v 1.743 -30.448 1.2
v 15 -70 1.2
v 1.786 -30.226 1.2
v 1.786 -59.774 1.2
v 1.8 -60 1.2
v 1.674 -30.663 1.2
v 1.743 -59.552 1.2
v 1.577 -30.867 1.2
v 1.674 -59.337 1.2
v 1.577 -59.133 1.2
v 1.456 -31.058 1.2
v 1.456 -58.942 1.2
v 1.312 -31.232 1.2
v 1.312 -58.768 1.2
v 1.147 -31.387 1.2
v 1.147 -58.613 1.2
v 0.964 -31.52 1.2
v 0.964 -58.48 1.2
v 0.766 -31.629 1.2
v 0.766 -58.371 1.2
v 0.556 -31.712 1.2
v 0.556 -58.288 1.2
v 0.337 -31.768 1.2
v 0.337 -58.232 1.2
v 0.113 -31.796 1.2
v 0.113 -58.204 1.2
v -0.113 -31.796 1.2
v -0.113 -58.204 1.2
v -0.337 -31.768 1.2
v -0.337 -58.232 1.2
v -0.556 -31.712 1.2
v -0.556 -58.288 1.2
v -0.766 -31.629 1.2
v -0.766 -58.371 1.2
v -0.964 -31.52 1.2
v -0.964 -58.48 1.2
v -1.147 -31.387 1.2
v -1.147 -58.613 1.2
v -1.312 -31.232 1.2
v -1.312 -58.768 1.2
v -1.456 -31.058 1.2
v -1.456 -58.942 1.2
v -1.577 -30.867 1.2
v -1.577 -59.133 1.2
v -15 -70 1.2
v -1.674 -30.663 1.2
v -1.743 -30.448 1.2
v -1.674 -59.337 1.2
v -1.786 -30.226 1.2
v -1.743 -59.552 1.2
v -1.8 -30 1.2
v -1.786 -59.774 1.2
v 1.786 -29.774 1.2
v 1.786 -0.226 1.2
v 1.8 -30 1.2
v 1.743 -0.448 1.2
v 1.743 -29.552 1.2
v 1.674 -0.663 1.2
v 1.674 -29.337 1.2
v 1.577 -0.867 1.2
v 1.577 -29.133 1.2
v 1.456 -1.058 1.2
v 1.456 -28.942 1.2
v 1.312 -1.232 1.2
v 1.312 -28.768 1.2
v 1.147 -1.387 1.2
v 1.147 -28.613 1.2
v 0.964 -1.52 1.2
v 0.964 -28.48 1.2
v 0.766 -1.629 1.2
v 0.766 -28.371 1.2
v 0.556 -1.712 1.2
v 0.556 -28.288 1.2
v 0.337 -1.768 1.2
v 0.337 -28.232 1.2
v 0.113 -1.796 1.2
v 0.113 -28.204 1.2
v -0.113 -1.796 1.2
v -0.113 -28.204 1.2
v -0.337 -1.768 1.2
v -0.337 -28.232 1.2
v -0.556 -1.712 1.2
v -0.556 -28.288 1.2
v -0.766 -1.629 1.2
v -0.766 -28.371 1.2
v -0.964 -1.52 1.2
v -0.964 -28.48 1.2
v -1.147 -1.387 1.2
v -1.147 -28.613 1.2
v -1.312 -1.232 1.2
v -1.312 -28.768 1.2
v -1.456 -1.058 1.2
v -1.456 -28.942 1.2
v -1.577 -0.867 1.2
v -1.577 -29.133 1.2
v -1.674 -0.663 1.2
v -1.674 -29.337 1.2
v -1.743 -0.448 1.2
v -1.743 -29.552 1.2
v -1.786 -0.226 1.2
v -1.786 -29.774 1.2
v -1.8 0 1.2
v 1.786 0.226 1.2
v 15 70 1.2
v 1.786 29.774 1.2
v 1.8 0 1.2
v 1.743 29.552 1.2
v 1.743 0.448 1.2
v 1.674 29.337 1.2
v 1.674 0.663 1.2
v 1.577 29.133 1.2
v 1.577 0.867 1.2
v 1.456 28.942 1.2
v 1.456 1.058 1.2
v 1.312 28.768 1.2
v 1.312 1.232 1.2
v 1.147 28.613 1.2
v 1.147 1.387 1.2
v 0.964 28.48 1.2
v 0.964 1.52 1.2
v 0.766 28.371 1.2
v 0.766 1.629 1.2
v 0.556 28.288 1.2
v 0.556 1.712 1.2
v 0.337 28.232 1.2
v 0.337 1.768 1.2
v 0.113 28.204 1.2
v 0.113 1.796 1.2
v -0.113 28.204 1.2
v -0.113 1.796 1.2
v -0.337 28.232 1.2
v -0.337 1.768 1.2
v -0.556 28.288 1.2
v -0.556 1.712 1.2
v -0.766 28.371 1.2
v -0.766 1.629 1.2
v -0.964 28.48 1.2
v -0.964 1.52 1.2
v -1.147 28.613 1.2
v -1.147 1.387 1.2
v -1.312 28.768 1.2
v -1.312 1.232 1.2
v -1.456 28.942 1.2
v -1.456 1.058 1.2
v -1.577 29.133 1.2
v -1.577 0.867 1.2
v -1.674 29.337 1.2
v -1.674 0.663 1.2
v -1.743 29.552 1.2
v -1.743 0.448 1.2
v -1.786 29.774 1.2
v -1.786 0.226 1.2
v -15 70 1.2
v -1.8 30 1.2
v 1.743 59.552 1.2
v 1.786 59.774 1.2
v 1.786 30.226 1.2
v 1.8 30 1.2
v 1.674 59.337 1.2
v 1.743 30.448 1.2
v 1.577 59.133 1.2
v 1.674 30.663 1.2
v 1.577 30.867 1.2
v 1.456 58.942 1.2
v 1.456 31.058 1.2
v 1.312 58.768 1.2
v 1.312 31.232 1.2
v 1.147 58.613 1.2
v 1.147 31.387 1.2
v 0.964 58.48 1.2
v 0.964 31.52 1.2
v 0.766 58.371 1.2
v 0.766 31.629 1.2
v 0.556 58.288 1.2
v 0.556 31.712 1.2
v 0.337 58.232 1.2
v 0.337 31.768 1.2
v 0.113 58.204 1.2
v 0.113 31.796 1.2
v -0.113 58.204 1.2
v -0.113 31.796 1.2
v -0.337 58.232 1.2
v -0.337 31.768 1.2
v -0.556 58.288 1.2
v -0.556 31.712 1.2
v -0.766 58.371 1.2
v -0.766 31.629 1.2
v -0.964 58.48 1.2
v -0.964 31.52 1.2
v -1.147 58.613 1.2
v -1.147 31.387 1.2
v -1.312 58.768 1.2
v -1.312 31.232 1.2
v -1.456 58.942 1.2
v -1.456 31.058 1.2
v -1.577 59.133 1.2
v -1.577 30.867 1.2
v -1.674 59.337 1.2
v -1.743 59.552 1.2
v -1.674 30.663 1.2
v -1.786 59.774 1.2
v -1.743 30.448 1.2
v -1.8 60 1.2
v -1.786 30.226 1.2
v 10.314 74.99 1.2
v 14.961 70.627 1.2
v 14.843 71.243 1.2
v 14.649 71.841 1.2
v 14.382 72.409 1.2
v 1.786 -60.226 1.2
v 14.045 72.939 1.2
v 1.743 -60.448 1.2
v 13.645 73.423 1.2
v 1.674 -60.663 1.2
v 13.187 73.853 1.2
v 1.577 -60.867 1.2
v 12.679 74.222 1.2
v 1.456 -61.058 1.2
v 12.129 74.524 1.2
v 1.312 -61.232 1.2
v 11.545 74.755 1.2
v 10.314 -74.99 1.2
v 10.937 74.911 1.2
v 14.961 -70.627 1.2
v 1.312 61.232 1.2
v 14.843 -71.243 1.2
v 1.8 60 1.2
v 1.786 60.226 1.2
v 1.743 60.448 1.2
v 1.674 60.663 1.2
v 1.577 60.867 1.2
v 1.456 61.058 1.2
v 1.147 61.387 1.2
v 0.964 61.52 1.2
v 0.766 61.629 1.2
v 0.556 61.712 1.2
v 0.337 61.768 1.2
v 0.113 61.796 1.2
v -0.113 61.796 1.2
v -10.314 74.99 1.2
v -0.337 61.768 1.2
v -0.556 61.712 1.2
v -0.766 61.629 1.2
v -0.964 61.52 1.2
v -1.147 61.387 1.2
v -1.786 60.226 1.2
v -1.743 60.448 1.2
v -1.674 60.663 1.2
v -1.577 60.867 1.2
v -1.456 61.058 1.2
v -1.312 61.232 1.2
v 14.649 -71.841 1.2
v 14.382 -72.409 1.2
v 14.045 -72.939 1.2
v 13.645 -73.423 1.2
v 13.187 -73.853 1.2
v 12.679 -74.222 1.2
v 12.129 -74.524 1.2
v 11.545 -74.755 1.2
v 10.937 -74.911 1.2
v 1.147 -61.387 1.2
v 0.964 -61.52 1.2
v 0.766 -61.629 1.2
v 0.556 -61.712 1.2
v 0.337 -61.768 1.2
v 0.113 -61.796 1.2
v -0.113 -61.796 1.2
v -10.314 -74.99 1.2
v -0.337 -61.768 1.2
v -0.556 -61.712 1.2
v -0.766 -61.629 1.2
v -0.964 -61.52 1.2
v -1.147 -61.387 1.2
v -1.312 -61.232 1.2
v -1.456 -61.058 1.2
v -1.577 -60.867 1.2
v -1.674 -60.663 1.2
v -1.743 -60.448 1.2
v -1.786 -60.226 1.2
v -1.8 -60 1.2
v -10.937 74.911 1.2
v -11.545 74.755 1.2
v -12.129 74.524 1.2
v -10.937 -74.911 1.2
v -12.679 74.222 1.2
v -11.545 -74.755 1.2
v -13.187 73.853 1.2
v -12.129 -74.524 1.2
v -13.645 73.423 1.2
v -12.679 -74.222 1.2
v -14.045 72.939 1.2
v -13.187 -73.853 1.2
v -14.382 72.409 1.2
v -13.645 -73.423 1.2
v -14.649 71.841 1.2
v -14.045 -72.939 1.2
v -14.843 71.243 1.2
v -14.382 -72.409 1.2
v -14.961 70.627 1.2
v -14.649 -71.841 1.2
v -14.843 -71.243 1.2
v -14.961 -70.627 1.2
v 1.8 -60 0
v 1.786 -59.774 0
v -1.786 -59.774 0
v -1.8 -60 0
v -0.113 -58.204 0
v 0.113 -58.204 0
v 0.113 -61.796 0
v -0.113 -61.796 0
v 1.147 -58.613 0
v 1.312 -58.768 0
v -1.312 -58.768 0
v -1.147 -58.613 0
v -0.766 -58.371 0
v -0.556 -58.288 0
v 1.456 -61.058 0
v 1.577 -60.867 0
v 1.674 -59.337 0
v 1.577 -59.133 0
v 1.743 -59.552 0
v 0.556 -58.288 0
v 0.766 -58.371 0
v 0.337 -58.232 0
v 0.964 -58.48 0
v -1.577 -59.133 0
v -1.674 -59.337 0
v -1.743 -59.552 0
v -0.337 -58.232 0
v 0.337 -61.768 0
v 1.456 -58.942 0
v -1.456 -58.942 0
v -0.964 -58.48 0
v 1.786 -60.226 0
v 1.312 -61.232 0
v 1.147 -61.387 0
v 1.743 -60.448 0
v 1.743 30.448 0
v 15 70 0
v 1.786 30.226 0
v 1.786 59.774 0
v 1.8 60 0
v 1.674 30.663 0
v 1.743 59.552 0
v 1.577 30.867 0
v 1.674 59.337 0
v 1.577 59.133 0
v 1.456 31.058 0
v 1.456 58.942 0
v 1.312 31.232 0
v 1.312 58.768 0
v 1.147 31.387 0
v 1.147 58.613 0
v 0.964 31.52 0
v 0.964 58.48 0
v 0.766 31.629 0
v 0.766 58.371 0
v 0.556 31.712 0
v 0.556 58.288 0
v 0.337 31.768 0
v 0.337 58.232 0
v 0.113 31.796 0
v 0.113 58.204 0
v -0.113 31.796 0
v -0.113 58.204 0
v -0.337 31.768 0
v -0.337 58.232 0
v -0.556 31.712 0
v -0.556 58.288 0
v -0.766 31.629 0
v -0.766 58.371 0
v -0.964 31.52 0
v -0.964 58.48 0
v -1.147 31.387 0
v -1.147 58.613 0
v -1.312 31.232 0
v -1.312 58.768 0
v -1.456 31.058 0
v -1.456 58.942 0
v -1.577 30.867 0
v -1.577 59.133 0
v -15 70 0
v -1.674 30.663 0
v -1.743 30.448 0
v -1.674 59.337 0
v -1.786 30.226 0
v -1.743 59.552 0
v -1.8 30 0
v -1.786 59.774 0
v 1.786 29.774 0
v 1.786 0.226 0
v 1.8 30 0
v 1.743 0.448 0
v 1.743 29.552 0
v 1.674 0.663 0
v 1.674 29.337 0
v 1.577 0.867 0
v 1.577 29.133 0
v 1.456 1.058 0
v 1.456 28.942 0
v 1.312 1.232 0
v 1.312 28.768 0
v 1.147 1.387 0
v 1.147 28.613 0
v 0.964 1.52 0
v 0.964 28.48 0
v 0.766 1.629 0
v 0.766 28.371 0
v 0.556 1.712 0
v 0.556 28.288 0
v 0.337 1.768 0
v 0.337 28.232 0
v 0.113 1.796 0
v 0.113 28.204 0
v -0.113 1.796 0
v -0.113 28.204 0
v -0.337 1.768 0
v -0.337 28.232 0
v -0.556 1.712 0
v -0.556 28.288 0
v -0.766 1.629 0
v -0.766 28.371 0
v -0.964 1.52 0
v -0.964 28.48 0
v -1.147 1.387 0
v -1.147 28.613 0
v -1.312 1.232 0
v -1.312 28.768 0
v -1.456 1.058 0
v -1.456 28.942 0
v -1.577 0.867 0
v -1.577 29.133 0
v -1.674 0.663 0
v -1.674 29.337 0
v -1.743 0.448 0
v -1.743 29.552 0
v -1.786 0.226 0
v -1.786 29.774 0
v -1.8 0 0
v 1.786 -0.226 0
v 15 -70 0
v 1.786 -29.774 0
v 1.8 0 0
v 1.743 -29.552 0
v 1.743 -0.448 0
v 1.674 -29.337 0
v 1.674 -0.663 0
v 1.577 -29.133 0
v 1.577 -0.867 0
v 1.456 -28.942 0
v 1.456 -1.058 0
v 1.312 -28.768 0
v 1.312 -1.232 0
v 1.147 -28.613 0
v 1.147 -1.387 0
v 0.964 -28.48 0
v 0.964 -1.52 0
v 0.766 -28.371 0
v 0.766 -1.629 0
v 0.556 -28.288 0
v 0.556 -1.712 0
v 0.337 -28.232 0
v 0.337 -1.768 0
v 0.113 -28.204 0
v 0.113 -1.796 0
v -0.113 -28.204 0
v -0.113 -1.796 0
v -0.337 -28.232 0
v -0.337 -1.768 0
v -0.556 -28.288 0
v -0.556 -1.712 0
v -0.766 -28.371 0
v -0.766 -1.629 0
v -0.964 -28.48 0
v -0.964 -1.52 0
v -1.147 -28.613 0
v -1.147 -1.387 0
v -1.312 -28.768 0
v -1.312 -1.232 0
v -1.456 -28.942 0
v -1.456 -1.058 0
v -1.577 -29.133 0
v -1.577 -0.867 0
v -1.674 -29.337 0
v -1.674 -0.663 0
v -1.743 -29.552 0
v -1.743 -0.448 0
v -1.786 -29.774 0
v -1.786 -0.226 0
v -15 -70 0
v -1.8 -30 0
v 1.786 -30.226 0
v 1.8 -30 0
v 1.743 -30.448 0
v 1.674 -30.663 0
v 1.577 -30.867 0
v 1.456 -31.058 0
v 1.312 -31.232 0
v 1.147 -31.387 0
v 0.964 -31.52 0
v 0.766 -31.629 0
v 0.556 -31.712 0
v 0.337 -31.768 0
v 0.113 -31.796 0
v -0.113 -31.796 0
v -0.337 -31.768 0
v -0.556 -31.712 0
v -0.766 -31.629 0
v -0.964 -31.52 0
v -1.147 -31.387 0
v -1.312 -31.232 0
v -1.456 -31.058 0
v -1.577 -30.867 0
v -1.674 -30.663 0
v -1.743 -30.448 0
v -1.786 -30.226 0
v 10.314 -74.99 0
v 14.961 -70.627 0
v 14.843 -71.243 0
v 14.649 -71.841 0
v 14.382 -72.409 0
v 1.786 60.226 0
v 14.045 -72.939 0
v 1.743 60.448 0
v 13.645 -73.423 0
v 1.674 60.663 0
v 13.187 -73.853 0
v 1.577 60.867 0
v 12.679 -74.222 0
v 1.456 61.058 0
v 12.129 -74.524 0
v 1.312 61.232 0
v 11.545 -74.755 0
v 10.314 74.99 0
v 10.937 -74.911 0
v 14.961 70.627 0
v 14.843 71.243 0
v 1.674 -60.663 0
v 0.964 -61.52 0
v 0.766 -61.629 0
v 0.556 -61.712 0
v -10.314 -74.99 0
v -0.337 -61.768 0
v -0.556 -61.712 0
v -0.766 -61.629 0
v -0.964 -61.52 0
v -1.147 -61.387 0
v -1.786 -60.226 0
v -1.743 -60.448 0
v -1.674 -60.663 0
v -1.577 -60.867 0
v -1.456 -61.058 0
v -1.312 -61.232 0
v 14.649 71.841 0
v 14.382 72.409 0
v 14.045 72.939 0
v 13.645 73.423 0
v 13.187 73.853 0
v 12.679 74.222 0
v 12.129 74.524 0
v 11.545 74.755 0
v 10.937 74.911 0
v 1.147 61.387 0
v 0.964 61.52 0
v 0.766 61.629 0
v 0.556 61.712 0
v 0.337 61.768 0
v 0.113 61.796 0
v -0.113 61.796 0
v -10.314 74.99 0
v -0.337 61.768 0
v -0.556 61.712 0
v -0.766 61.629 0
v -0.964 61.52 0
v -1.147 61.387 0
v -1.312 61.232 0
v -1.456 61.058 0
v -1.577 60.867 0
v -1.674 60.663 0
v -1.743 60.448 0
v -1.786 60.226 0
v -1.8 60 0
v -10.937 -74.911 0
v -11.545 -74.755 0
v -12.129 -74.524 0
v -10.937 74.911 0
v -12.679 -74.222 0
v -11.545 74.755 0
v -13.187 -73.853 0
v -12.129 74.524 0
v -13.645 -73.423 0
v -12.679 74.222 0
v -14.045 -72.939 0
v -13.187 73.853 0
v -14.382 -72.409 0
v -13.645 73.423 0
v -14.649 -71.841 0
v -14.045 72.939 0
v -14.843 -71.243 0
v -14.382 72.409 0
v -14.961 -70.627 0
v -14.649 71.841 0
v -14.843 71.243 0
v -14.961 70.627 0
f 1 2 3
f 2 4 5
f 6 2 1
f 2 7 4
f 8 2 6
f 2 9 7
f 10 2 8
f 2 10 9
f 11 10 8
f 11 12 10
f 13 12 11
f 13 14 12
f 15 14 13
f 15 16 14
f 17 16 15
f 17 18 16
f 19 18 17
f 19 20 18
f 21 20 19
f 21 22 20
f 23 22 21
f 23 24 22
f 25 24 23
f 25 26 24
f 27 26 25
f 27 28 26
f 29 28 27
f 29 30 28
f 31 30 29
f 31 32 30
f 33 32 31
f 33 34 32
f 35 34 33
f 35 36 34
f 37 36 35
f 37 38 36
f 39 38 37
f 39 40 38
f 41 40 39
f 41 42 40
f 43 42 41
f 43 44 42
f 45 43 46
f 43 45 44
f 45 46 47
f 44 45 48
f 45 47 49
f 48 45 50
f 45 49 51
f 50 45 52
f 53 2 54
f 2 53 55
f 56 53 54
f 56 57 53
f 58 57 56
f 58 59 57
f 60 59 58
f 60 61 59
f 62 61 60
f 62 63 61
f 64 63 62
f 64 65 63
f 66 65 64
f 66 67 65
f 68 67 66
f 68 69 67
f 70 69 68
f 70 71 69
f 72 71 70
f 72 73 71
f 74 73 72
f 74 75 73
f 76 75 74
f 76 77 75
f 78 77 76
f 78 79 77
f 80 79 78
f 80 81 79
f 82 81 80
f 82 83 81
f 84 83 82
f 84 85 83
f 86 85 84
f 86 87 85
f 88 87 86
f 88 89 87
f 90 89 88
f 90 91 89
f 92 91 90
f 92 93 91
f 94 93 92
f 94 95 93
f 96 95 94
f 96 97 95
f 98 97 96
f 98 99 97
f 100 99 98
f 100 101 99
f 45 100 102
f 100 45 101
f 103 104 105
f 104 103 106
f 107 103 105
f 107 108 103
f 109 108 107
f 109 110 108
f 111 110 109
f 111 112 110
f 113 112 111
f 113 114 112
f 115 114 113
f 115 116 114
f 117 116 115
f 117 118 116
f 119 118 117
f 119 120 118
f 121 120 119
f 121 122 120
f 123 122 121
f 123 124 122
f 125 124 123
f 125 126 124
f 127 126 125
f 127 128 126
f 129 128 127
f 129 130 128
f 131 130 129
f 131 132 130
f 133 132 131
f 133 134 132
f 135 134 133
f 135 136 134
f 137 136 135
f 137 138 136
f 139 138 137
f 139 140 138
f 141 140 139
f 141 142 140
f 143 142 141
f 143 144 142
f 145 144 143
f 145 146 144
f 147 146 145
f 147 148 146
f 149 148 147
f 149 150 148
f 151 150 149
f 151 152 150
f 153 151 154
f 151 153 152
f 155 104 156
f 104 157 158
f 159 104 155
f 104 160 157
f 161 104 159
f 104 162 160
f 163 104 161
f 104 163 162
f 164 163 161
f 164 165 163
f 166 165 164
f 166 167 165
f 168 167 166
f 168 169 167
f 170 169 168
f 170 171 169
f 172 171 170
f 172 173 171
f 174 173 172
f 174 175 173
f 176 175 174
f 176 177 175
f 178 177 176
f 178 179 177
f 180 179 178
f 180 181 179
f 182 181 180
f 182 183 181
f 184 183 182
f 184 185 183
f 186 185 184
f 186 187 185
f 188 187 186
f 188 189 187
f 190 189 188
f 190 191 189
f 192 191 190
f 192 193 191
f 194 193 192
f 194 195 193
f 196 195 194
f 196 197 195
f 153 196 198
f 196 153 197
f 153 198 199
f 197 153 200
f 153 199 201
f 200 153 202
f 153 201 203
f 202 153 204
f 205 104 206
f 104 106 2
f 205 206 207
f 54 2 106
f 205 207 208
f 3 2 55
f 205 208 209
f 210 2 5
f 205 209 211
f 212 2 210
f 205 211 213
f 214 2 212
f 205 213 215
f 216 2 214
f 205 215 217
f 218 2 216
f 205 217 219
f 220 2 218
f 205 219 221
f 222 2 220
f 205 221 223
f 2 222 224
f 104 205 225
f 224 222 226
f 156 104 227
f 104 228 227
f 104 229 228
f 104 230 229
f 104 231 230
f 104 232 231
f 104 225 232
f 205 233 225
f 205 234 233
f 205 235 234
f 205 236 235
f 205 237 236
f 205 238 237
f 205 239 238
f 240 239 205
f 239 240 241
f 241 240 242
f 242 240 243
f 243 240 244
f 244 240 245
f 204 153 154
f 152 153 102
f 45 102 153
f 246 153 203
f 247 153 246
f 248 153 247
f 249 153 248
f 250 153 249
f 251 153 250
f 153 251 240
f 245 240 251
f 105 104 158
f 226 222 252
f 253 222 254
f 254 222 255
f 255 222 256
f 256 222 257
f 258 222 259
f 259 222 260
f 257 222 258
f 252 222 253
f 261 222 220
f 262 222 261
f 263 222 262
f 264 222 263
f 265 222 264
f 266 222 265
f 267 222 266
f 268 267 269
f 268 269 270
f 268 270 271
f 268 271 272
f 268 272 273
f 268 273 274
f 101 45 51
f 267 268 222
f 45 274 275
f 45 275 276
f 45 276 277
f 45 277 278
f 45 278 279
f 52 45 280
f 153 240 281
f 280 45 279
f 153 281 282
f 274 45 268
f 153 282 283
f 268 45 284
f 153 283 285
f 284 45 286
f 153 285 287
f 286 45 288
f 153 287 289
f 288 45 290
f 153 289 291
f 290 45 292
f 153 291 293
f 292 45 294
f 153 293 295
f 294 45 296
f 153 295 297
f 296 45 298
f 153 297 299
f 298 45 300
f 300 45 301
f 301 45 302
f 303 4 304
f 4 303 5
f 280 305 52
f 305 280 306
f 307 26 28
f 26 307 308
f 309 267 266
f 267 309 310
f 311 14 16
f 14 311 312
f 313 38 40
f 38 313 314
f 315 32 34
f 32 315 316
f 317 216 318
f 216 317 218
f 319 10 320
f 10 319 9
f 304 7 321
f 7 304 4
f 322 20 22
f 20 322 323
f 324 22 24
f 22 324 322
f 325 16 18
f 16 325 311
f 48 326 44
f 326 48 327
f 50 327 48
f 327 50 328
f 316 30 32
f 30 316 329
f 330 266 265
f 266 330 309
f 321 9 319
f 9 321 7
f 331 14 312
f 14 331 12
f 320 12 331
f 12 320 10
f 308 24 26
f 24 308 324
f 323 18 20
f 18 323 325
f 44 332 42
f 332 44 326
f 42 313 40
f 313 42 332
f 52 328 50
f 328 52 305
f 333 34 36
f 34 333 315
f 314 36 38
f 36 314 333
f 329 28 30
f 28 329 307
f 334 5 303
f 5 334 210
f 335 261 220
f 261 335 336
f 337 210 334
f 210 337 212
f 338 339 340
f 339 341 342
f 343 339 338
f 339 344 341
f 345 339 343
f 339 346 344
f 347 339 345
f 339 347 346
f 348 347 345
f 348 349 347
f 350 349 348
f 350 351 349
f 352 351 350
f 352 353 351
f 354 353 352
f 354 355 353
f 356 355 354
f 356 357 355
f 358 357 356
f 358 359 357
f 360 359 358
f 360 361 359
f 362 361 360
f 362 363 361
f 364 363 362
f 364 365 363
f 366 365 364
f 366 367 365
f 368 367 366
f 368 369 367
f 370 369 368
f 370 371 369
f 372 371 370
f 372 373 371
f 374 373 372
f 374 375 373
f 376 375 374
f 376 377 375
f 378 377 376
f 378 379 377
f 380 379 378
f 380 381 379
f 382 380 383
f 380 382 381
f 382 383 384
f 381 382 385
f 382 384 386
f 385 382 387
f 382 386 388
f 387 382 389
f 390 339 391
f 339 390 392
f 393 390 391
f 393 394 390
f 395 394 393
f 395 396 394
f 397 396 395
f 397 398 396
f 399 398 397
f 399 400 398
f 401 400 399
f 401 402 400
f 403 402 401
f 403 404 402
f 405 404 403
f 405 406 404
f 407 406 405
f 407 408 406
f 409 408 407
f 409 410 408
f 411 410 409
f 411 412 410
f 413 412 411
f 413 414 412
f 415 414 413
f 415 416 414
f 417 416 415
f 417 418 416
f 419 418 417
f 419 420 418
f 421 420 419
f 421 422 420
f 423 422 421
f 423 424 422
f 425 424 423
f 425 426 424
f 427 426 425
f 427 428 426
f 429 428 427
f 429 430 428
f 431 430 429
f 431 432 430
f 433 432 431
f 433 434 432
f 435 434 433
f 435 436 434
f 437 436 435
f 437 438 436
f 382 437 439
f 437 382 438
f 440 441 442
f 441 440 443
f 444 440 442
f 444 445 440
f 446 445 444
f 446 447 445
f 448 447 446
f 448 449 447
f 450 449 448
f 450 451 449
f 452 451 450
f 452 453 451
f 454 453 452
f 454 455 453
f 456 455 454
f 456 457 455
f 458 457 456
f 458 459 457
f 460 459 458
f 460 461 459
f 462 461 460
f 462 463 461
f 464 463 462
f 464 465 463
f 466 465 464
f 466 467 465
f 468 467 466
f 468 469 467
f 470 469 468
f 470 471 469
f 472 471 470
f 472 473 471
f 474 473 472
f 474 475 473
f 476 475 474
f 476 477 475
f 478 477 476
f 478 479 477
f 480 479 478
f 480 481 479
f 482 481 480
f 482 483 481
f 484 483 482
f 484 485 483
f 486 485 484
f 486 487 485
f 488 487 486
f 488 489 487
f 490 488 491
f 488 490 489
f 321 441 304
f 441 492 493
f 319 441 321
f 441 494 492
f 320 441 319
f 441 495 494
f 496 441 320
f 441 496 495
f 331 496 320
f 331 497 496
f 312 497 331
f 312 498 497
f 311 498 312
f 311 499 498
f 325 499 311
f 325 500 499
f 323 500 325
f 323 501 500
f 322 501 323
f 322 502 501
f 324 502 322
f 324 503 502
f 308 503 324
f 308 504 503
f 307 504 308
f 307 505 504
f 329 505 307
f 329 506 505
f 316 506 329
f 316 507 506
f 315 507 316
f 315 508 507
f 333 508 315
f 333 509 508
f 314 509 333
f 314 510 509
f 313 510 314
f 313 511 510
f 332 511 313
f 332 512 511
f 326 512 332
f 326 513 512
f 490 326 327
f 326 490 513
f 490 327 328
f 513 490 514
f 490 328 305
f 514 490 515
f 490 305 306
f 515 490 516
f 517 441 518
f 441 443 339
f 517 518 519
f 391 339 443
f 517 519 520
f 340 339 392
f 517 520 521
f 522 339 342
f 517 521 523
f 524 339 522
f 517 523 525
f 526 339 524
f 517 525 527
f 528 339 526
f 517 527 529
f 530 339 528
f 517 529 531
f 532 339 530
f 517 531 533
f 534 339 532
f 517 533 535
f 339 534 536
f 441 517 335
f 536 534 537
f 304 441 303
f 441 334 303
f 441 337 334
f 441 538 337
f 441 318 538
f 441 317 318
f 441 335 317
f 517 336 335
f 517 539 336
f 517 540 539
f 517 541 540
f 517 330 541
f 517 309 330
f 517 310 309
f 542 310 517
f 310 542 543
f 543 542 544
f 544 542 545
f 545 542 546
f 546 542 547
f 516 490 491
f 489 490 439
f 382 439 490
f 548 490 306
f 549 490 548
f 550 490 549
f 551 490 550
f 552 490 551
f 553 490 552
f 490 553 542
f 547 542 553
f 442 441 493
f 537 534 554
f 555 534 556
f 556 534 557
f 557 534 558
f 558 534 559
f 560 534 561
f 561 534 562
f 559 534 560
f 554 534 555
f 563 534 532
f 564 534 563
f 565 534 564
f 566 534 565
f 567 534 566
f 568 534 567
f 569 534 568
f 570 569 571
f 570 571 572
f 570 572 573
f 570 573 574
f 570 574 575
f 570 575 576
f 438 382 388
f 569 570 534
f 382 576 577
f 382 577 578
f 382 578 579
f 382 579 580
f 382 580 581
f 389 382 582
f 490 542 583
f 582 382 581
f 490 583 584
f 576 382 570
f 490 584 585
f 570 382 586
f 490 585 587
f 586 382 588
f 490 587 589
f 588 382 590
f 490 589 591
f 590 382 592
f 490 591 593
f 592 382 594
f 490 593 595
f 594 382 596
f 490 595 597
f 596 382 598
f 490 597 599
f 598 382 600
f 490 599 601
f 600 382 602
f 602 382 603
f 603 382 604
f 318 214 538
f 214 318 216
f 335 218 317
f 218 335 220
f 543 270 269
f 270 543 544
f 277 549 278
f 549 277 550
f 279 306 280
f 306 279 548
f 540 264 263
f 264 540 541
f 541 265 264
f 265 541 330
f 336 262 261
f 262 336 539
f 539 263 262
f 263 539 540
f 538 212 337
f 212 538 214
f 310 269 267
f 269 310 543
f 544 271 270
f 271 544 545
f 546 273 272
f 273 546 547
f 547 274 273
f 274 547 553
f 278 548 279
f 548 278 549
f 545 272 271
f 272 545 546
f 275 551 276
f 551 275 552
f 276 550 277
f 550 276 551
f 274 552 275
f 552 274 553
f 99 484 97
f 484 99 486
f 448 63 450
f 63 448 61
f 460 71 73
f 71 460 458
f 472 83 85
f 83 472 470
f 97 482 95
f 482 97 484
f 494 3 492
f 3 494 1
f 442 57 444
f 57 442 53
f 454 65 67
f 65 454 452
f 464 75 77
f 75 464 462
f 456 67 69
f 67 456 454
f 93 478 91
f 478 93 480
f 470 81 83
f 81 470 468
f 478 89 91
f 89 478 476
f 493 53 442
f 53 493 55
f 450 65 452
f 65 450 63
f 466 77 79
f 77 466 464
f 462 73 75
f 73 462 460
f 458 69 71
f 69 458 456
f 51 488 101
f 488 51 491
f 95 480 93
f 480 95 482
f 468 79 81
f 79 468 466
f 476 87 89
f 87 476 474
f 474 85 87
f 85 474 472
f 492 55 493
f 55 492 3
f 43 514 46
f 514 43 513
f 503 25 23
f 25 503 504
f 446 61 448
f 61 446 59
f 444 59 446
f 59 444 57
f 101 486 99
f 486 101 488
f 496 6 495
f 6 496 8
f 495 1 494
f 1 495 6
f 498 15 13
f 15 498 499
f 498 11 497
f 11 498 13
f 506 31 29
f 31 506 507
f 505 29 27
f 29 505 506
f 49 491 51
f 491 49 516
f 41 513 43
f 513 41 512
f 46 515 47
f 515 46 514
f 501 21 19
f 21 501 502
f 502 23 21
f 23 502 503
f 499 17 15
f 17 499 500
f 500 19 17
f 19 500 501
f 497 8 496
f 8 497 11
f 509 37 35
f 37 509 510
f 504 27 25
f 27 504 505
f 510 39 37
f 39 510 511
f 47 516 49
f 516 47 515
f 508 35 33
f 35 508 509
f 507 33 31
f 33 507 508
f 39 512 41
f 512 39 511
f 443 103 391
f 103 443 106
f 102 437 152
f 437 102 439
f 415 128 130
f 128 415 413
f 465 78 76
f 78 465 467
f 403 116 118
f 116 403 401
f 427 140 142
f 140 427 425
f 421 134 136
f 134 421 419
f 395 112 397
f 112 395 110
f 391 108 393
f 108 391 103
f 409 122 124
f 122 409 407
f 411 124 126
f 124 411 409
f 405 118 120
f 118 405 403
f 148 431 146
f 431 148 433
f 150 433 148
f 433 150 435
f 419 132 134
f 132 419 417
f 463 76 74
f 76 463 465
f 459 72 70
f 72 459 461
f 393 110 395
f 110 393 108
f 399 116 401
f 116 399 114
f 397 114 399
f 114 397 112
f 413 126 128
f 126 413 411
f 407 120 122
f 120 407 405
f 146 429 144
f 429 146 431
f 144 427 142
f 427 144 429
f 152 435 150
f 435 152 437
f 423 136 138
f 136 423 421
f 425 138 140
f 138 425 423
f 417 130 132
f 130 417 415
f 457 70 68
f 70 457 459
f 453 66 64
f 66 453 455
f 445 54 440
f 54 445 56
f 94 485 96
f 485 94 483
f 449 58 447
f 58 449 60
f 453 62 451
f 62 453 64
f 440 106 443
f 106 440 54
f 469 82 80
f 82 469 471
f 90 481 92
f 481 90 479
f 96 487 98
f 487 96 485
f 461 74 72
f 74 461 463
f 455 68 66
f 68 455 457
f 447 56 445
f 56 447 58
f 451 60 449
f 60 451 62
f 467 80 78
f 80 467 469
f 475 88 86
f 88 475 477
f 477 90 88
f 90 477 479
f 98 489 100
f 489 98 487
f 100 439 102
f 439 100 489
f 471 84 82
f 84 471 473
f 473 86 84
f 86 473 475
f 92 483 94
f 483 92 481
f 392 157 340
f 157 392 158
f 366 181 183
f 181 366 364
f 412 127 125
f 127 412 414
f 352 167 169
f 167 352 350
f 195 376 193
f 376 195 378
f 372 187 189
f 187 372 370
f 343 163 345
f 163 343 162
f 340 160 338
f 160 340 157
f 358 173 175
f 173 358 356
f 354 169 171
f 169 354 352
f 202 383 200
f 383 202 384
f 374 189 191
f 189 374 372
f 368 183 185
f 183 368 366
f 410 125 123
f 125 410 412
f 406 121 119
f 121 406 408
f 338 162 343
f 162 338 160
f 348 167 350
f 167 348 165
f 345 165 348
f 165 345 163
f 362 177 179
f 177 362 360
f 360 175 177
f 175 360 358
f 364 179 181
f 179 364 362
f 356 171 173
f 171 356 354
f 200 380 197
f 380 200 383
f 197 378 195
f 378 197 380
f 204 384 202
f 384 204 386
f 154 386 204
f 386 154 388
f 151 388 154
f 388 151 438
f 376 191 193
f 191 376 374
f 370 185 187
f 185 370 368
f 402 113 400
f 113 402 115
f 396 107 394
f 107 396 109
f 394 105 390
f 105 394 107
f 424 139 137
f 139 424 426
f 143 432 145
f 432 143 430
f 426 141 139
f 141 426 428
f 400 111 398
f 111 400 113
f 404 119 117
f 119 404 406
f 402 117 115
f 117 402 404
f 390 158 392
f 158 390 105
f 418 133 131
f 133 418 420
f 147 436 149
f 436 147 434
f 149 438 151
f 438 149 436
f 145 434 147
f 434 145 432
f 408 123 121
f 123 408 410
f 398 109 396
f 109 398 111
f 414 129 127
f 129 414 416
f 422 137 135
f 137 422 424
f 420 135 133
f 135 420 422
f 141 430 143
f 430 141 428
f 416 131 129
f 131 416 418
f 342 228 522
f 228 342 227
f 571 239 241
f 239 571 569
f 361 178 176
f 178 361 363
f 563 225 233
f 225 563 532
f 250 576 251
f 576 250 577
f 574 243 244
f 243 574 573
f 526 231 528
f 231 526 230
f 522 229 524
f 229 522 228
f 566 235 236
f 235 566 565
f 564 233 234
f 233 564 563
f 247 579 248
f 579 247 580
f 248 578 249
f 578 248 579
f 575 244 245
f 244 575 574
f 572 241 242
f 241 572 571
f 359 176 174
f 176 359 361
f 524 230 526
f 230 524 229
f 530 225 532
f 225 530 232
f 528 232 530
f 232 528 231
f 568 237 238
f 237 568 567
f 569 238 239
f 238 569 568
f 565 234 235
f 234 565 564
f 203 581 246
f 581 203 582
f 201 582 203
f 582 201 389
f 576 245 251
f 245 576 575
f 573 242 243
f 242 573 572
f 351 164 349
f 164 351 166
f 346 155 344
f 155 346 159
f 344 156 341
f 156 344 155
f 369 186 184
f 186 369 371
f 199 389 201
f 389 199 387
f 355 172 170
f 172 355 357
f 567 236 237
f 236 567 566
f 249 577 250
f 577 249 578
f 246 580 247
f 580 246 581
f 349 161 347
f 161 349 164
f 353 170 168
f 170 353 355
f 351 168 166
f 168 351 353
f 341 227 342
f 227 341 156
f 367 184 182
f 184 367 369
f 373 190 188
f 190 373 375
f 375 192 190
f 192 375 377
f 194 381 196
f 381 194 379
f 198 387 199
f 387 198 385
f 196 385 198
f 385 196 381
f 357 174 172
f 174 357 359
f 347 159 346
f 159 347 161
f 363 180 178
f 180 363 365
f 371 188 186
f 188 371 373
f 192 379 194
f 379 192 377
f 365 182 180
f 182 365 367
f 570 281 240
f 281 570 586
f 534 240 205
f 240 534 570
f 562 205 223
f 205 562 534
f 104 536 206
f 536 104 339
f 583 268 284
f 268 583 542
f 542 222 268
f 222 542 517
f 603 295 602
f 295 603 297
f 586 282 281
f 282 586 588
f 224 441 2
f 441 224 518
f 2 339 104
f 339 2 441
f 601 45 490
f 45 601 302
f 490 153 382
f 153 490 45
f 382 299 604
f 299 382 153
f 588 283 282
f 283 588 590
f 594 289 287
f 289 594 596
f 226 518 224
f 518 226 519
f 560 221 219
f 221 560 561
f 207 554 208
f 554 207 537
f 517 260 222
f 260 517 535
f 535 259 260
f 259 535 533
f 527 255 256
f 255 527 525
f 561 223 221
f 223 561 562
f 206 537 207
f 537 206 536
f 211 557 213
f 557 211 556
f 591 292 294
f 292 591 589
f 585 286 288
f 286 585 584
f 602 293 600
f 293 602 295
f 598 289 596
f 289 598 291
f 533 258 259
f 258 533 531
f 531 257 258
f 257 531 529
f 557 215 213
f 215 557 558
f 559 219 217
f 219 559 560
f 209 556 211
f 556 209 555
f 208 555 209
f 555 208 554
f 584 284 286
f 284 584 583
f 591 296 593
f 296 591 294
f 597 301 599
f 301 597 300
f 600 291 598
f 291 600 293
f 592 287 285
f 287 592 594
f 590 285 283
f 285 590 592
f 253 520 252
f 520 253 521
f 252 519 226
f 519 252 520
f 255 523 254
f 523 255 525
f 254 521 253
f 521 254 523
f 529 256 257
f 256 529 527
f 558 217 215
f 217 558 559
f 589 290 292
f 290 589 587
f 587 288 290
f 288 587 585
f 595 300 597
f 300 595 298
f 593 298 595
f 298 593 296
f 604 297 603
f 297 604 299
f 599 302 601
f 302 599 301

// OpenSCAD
$fn = 50;


difference() {
	union() {
		hull() {
			translate(v = [-10.0000000000, 70.0000000000, 0]) {
				cylinder(h = 9, r = 5);
			}
			translate(v = [10.0000000000, 70.0000000000, 0]) {
				cylinder(h = 9, r = 5);
			}
			translate(v = [-10.0000000000, -70.0000000000, 0]) {
				cylinder(h = 9, r = 5);
			}
			translate(v = [10.0000000000, -70.0000000000, 0]) {
				cylinder(h = 9, r = 5);
			}
		}
	}
	union() {
		translate(v = [0, 0, 1.2000000000]) {
			hull() {
				translate(v = [-10.0000000000, 70.0000000000, 0]) {
					cylinder(h = 7.8000000000, r = 3.8000000000);
				}
				translate(v = [10.0000000000, 70.0000000000, 0]) {
					cylinder(h = 7.8000000000, r = 3.8000000000);
				}
				translate(v = [-10.0000000000, -70.0000000000, 0]) {
					cylinder(h = 7.8000000000, r = 3.8000000000);
				}
				translate(v = [10.0000000000, -70.0000000000, 0]) {
					cylinder(h = 7.8000000000, r = 3.8000000000);
				}
			}
		}
		#translate(v = [0.0000000000, -60.0000000000, 0]) {
			cylinder(h = 1.2000000000, r = 1.8000000000);
		}
		#translate(v = [0.0000000000, -30.0000000000, 0]) {
			cylinder(h = 1.2000000000, r = 1.8000000000);
		}
		#cylinder(h = 1.2000000000, r = 1.8000000000);
		#translate(v = [0.0000000000, 30.0000000000, 0]) {
			cylinder(h = 1.2000000000, r = 1.8000000000);
		}
		#translate(v = [0.0000000000, 60.0000000000, 0]) {
			cylinder(h = 1.2000000000, r = 1.8000000000);
		}
		translate(v = [-250.0000000000, -250.0000000000, 1.2000000000]) {
			cube(size = [500, 500, 500]);
		}
		translate(v = [-250.0000000000, -250.0000000000, 1.2000000000]) {
			cube(size = [500, 500, 500]);
		}
		translate(v = [-250.0000000000, -250.0000000000, 1.2000000000]) {
			cube(size = [500, 500, 500]);
		}
	}
}
